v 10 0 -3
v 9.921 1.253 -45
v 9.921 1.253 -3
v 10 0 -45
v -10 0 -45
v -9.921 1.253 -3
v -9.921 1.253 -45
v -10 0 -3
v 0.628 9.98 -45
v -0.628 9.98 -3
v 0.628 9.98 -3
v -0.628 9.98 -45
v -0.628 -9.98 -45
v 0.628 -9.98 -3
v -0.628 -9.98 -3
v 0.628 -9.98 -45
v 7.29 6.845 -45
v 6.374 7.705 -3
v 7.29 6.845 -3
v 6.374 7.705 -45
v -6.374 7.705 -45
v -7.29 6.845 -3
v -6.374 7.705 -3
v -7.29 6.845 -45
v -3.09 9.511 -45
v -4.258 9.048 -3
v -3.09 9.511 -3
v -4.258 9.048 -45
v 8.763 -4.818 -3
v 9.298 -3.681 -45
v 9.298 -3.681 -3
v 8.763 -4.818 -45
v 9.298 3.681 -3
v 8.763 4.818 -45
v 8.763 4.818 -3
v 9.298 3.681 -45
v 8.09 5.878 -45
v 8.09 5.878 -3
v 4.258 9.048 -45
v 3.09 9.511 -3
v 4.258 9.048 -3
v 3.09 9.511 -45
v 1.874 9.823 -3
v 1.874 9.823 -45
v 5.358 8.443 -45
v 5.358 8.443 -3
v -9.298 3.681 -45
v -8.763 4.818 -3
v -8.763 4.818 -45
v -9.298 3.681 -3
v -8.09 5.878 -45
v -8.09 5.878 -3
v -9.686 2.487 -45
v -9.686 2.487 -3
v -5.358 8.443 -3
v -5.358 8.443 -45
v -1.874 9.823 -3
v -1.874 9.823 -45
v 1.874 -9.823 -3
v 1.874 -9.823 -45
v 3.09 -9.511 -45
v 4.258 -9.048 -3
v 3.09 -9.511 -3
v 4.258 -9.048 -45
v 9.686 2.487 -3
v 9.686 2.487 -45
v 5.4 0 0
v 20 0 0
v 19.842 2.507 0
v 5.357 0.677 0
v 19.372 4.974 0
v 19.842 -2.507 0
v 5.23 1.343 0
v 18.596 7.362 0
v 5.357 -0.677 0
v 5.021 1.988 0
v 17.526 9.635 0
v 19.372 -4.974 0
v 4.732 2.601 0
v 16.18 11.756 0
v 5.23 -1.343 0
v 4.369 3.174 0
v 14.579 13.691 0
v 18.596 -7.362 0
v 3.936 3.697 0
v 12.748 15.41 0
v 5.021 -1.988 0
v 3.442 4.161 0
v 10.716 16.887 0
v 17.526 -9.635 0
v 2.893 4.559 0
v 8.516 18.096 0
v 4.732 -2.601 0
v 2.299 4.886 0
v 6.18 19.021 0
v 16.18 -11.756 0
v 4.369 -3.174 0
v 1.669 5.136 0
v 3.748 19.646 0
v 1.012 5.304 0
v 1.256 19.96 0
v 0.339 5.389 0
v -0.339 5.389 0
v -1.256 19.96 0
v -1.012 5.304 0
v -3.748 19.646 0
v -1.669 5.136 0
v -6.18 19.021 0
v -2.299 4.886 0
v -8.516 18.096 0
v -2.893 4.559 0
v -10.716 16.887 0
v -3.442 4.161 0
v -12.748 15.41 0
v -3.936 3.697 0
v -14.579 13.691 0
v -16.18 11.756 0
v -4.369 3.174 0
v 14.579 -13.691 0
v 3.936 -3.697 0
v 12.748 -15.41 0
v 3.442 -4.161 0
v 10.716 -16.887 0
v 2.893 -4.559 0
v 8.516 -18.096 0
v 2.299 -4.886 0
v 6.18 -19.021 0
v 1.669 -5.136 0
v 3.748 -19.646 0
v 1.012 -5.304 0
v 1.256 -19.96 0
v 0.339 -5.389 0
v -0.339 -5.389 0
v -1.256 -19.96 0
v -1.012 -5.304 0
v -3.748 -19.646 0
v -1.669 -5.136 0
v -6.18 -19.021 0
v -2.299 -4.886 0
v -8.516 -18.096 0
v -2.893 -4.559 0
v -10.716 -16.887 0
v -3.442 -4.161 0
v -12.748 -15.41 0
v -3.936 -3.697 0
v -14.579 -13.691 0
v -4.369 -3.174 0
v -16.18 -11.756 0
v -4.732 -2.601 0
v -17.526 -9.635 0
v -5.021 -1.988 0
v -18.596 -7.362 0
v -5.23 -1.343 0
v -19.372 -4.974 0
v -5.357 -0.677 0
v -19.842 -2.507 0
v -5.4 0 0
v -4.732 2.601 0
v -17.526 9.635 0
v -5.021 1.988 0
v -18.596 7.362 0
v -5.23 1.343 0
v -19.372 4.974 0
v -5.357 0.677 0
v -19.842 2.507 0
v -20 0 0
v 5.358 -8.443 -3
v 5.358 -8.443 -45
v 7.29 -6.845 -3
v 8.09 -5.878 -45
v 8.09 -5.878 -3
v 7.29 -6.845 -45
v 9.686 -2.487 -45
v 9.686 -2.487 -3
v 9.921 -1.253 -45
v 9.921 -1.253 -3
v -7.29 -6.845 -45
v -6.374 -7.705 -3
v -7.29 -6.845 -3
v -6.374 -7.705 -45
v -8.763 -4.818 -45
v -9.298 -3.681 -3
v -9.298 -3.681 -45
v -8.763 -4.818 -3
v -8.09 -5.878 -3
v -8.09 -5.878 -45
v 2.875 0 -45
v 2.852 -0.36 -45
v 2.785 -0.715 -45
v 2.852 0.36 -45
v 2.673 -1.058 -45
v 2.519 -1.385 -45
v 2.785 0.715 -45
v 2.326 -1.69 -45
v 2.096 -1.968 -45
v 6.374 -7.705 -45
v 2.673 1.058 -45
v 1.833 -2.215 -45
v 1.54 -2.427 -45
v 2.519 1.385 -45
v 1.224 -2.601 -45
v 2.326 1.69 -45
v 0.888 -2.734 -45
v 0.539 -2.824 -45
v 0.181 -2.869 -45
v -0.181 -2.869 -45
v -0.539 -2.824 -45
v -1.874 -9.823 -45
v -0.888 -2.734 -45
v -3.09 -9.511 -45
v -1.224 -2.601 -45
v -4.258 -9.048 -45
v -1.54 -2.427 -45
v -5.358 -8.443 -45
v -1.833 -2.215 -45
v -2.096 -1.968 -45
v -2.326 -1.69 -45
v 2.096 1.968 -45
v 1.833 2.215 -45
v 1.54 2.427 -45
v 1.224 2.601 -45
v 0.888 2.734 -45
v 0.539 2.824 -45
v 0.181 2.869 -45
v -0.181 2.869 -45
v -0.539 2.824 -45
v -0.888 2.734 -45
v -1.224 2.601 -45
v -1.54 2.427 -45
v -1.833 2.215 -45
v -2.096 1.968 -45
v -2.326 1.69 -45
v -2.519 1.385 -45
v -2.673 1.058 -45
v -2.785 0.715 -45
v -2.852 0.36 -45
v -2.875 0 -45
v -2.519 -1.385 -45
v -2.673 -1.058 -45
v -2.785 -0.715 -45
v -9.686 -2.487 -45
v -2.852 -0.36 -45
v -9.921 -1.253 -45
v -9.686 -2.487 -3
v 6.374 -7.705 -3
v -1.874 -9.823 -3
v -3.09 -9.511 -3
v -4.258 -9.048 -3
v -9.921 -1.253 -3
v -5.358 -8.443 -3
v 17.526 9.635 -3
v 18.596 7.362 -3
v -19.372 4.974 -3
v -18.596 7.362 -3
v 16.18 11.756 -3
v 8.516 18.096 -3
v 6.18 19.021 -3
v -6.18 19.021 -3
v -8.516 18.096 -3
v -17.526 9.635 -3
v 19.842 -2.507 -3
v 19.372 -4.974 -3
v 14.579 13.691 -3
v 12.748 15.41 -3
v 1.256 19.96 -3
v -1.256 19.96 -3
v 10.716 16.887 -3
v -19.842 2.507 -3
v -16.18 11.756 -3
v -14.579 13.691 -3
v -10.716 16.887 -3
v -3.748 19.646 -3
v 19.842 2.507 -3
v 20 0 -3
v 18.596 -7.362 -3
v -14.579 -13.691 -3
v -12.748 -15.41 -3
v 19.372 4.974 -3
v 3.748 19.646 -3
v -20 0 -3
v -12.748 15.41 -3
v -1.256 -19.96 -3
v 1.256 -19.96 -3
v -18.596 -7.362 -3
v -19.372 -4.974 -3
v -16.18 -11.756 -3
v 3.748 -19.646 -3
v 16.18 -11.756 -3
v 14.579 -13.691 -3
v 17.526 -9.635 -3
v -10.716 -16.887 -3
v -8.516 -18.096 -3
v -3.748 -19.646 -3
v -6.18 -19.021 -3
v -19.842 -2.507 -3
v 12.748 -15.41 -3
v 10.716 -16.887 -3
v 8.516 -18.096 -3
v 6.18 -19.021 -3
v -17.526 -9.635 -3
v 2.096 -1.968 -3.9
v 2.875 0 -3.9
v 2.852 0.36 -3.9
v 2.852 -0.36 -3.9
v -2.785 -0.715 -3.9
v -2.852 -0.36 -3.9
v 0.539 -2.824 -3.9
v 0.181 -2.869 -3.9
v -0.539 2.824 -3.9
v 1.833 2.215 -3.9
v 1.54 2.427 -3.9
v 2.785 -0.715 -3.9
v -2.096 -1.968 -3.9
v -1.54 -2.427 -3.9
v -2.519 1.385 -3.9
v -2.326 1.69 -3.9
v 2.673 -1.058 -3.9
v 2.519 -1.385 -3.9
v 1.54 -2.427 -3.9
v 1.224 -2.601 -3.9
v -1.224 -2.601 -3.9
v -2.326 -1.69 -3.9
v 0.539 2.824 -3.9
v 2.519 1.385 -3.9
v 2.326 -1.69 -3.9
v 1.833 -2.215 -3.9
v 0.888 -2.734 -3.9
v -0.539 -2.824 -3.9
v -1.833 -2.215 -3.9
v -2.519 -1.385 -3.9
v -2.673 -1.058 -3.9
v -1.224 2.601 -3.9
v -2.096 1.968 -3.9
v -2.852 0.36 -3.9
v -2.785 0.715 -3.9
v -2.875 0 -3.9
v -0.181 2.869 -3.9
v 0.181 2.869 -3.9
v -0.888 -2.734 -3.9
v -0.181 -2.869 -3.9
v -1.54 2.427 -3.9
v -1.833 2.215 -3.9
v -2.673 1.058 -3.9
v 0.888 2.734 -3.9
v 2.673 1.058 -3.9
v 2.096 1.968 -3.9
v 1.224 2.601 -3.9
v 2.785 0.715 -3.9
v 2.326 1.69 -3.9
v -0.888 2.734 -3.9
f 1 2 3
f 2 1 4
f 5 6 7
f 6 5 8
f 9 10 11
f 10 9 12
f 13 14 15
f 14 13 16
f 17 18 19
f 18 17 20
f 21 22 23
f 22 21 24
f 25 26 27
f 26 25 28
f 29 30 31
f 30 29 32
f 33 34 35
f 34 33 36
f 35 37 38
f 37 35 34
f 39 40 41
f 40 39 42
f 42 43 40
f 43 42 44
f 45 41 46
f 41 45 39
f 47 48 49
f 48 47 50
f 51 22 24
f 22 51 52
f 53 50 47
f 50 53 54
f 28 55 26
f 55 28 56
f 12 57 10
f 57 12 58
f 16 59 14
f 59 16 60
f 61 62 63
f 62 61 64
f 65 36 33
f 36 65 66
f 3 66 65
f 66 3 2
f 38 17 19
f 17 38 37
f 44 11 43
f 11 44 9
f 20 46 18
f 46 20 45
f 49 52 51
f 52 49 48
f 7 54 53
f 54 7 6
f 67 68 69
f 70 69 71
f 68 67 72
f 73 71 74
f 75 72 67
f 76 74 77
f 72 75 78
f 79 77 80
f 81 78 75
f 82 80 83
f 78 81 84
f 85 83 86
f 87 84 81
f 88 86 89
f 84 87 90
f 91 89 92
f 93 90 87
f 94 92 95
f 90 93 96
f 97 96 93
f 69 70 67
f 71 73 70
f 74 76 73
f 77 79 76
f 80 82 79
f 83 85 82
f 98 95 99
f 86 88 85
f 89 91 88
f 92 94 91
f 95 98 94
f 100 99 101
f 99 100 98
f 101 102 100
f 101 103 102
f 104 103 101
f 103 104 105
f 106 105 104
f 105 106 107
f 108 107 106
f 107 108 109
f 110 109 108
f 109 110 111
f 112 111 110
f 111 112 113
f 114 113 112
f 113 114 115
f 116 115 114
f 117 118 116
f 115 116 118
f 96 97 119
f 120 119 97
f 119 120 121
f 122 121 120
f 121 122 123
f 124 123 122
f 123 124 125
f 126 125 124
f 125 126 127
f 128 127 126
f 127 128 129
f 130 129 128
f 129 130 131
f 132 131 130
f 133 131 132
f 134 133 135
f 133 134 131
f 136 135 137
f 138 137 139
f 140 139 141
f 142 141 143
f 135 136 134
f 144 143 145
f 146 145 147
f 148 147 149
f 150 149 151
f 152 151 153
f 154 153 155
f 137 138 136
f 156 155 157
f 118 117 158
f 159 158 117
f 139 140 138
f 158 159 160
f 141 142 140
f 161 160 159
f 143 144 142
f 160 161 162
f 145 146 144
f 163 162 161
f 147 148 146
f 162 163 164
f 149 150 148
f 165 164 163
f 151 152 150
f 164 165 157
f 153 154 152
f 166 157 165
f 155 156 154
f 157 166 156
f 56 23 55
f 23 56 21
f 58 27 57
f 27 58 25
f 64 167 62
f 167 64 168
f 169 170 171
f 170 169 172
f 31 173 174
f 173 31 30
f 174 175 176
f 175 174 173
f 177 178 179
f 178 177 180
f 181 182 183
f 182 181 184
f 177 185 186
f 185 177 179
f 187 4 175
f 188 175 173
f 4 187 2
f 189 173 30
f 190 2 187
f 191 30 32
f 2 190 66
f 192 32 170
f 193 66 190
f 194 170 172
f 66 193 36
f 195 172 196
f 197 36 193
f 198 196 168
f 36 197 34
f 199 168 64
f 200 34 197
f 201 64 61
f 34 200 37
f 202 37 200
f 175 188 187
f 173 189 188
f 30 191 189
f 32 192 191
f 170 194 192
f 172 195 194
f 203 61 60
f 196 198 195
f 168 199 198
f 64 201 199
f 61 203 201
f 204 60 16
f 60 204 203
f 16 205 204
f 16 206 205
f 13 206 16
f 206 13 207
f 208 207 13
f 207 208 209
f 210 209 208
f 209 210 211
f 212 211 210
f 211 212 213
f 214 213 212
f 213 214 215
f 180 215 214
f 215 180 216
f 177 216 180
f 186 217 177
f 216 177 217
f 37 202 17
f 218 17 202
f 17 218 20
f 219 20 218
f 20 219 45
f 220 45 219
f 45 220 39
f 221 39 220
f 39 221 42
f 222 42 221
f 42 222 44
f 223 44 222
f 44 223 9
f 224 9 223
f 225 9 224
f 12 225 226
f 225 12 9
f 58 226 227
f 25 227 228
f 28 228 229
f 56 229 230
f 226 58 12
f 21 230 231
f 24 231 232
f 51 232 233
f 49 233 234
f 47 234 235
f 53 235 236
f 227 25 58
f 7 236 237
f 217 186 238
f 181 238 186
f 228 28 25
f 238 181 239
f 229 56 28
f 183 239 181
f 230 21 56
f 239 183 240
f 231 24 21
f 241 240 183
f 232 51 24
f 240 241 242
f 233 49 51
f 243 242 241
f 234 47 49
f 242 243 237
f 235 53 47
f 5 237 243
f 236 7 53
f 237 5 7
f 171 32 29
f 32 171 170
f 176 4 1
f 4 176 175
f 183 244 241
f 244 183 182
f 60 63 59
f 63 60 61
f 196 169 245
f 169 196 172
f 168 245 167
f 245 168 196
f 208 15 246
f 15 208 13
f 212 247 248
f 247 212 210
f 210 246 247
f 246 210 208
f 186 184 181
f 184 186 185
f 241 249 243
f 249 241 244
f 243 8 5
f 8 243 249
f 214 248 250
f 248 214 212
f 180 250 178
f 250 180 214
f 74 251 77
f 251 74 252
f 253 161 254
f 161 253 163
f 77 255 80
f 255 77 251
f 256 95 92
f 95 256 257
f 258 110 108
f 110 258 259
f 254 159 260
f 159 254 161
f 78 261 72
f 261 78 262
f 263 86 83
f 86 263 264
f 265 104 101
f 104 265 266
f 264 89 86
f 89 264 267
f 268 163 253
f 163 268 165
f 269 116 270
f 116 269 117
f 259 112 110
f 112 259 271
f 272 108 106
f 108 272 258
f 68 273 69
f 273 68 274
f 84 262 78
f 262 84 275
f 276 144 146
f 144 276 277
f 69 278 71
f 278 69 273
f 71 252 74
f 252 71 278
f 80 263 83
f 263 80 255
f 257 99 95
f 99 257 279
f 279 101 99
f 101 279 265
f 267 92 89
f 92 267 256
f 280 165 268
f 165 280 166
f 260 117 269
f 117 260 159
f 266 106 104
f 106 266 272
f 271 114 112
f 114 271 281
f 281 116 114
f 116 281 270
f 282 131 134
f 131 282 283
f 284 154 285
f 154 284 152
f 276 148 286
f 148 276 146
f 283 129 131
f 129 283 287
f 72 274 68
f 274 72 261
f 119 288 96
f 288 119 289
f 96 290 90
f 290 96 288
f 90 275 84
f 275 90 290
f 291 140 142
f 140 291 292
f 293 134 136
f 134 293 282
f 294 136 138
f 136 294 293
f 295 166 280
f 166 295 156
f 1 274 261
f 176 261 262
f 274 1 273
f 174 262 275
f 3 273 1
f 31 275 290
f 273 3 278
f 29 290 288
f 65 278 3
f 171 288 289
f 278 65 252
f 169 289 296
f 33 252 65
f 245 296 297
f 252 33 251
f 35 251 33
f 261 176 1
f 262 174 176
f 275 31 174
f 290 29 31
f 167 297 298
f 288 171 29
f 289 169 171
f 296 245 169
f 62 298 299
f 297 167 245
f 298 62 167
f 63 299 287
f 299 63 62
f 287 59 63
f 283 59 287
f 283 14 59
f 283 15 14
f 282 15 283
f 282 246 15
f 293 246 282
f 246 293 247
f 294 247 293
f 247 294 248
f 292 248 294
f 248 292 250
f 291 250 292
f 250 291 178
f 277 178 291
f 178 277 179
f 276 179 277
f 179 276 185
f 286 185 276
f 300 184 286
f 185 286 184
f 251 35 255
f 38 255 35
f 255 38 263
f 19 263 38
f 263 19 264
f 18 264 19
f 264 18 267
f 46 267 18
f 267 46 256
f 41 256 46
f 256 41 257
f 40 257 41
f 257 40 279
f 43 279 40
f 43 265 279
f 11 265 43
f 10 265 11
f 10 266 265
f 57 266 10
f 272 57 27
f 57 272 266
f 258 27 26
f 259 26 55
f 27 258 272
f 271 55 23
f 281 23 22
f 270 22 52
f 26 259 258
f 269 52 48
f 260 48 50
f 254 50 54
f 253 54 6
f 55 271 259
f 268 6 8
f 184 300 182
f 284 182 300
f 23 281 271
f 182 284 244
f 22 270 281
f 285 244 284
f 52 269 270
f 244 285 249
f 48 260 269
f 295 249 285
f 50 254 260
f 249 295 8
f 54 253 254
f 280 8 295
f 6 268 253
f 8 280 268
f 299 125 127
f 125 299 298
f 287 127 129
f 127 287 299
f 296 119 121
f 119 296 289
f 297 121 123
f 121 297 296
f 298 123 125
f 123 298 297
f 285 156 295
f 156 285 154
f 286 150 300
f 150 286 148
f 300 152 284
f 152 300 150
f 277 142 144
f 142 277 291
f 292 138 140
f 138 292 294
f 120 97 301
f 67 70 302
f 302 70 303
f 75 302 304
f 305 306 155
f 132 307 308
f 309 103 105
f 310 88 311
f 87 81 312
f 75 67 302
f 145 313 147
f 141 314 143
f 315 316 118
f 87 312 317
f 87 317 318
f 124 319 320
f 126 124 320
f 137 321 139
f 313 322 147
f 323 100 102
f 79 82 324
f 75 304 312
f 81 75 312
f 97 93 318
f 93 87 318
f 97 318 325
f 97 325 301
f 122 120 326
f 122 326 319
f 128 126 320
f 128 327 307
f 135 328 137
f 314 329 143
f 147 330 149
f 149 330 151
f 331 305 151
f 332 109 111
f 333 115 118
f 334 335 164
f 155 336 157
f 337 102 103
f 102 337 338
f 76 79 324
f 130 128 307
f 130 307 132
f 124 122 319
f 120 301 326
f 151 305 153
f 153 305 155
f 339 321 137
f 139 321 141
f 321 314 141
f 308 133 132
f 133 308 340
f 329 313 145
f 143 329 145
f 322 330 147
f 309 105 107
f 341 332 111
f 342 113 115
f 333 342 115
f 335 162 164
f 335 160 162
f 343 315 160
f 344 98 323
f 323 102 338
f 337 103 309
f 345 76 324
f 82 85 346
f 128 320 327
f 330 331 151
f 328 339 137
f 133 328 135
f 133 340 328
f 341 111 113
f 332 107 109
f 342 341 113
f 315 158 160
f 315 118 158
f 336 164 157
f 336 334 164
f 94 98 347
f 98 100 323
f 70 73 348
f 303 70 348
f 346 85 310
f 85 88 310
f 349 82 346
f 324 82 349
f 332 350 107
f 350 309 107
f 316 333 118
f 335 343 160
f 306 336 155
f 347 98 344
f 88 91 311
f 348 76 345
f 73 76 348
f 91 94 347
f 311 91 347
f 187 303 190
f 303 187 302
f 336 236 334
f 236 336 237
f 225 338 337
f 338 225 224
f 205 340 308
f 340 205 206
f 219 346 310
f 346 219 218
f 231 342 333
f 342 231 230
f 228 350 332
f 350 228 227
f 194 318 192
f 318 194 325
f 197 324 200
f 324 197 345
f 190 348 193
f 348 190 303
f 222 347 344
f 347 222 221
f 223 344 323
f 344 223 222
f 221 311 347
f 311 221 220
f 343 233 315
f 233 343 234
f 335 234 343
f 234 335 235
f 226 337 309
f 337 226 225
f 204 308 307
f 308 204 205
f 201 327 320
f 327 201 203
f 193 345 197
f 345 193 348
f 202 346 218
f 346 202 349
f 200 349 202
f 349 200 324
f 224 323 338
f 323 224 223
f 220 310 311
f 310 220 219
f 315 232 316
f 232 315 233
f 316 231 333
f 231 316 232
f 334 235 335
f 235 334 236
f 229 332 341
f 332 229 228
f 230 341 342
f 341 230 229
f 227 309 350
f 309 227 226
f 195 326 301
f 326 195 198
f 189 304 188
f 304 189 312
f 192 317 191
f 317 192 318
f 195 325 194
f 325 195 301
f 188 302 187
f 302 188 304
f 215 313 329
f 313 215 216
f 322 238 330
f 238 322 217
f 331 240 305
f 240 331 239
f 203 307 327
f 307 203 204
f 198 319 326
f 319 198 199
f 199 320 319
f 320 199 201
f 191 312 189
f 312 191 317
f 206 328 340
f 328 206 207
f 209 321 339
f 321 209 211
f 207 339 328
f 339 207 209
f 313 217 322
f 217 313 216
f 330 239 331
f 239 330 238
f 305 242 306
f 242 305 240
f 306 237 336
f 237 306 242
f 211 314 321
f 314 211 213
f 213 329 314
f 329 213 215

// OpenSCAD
$fn = 50;


difference() {
	union() {
		translate(v = [0, 0, -45.0000000000]) {
			cylinder(h = 45, r = 10.0000000000);
		}
		translate(v = [0, 0, -3.0000000000]) {
			cylinder(h = 3, r = 20.0000000000);
		}
	}
	union() {
		translate(v = [0, 0, 0]) {
			rotate(a = [0, 0, 0]) {
				difference() {
					union() {
						#translate(v = [0, 0, -45.0000000000]) {
							cylinder(h = 45, r = 2.6000000000);
						}
						#translate(v = [0, 0, -3.9000000000]) {
							cylinder(h = 3.9000000000, r = 10.0000000000, r1 = 2.8750000000, r2 = 5.4000000000);
						}
						#translate(v = [0, 0, -45.0000000000]) {
							cylinder(h = 45, r = 2.8750000000);
						}
						#translate(v = [0, 0, -45.0000000000]) {
							cylinder(h = 45, r = 2.6000000000);
						}
					}
					union();
				}
			}
		}
	}
}
